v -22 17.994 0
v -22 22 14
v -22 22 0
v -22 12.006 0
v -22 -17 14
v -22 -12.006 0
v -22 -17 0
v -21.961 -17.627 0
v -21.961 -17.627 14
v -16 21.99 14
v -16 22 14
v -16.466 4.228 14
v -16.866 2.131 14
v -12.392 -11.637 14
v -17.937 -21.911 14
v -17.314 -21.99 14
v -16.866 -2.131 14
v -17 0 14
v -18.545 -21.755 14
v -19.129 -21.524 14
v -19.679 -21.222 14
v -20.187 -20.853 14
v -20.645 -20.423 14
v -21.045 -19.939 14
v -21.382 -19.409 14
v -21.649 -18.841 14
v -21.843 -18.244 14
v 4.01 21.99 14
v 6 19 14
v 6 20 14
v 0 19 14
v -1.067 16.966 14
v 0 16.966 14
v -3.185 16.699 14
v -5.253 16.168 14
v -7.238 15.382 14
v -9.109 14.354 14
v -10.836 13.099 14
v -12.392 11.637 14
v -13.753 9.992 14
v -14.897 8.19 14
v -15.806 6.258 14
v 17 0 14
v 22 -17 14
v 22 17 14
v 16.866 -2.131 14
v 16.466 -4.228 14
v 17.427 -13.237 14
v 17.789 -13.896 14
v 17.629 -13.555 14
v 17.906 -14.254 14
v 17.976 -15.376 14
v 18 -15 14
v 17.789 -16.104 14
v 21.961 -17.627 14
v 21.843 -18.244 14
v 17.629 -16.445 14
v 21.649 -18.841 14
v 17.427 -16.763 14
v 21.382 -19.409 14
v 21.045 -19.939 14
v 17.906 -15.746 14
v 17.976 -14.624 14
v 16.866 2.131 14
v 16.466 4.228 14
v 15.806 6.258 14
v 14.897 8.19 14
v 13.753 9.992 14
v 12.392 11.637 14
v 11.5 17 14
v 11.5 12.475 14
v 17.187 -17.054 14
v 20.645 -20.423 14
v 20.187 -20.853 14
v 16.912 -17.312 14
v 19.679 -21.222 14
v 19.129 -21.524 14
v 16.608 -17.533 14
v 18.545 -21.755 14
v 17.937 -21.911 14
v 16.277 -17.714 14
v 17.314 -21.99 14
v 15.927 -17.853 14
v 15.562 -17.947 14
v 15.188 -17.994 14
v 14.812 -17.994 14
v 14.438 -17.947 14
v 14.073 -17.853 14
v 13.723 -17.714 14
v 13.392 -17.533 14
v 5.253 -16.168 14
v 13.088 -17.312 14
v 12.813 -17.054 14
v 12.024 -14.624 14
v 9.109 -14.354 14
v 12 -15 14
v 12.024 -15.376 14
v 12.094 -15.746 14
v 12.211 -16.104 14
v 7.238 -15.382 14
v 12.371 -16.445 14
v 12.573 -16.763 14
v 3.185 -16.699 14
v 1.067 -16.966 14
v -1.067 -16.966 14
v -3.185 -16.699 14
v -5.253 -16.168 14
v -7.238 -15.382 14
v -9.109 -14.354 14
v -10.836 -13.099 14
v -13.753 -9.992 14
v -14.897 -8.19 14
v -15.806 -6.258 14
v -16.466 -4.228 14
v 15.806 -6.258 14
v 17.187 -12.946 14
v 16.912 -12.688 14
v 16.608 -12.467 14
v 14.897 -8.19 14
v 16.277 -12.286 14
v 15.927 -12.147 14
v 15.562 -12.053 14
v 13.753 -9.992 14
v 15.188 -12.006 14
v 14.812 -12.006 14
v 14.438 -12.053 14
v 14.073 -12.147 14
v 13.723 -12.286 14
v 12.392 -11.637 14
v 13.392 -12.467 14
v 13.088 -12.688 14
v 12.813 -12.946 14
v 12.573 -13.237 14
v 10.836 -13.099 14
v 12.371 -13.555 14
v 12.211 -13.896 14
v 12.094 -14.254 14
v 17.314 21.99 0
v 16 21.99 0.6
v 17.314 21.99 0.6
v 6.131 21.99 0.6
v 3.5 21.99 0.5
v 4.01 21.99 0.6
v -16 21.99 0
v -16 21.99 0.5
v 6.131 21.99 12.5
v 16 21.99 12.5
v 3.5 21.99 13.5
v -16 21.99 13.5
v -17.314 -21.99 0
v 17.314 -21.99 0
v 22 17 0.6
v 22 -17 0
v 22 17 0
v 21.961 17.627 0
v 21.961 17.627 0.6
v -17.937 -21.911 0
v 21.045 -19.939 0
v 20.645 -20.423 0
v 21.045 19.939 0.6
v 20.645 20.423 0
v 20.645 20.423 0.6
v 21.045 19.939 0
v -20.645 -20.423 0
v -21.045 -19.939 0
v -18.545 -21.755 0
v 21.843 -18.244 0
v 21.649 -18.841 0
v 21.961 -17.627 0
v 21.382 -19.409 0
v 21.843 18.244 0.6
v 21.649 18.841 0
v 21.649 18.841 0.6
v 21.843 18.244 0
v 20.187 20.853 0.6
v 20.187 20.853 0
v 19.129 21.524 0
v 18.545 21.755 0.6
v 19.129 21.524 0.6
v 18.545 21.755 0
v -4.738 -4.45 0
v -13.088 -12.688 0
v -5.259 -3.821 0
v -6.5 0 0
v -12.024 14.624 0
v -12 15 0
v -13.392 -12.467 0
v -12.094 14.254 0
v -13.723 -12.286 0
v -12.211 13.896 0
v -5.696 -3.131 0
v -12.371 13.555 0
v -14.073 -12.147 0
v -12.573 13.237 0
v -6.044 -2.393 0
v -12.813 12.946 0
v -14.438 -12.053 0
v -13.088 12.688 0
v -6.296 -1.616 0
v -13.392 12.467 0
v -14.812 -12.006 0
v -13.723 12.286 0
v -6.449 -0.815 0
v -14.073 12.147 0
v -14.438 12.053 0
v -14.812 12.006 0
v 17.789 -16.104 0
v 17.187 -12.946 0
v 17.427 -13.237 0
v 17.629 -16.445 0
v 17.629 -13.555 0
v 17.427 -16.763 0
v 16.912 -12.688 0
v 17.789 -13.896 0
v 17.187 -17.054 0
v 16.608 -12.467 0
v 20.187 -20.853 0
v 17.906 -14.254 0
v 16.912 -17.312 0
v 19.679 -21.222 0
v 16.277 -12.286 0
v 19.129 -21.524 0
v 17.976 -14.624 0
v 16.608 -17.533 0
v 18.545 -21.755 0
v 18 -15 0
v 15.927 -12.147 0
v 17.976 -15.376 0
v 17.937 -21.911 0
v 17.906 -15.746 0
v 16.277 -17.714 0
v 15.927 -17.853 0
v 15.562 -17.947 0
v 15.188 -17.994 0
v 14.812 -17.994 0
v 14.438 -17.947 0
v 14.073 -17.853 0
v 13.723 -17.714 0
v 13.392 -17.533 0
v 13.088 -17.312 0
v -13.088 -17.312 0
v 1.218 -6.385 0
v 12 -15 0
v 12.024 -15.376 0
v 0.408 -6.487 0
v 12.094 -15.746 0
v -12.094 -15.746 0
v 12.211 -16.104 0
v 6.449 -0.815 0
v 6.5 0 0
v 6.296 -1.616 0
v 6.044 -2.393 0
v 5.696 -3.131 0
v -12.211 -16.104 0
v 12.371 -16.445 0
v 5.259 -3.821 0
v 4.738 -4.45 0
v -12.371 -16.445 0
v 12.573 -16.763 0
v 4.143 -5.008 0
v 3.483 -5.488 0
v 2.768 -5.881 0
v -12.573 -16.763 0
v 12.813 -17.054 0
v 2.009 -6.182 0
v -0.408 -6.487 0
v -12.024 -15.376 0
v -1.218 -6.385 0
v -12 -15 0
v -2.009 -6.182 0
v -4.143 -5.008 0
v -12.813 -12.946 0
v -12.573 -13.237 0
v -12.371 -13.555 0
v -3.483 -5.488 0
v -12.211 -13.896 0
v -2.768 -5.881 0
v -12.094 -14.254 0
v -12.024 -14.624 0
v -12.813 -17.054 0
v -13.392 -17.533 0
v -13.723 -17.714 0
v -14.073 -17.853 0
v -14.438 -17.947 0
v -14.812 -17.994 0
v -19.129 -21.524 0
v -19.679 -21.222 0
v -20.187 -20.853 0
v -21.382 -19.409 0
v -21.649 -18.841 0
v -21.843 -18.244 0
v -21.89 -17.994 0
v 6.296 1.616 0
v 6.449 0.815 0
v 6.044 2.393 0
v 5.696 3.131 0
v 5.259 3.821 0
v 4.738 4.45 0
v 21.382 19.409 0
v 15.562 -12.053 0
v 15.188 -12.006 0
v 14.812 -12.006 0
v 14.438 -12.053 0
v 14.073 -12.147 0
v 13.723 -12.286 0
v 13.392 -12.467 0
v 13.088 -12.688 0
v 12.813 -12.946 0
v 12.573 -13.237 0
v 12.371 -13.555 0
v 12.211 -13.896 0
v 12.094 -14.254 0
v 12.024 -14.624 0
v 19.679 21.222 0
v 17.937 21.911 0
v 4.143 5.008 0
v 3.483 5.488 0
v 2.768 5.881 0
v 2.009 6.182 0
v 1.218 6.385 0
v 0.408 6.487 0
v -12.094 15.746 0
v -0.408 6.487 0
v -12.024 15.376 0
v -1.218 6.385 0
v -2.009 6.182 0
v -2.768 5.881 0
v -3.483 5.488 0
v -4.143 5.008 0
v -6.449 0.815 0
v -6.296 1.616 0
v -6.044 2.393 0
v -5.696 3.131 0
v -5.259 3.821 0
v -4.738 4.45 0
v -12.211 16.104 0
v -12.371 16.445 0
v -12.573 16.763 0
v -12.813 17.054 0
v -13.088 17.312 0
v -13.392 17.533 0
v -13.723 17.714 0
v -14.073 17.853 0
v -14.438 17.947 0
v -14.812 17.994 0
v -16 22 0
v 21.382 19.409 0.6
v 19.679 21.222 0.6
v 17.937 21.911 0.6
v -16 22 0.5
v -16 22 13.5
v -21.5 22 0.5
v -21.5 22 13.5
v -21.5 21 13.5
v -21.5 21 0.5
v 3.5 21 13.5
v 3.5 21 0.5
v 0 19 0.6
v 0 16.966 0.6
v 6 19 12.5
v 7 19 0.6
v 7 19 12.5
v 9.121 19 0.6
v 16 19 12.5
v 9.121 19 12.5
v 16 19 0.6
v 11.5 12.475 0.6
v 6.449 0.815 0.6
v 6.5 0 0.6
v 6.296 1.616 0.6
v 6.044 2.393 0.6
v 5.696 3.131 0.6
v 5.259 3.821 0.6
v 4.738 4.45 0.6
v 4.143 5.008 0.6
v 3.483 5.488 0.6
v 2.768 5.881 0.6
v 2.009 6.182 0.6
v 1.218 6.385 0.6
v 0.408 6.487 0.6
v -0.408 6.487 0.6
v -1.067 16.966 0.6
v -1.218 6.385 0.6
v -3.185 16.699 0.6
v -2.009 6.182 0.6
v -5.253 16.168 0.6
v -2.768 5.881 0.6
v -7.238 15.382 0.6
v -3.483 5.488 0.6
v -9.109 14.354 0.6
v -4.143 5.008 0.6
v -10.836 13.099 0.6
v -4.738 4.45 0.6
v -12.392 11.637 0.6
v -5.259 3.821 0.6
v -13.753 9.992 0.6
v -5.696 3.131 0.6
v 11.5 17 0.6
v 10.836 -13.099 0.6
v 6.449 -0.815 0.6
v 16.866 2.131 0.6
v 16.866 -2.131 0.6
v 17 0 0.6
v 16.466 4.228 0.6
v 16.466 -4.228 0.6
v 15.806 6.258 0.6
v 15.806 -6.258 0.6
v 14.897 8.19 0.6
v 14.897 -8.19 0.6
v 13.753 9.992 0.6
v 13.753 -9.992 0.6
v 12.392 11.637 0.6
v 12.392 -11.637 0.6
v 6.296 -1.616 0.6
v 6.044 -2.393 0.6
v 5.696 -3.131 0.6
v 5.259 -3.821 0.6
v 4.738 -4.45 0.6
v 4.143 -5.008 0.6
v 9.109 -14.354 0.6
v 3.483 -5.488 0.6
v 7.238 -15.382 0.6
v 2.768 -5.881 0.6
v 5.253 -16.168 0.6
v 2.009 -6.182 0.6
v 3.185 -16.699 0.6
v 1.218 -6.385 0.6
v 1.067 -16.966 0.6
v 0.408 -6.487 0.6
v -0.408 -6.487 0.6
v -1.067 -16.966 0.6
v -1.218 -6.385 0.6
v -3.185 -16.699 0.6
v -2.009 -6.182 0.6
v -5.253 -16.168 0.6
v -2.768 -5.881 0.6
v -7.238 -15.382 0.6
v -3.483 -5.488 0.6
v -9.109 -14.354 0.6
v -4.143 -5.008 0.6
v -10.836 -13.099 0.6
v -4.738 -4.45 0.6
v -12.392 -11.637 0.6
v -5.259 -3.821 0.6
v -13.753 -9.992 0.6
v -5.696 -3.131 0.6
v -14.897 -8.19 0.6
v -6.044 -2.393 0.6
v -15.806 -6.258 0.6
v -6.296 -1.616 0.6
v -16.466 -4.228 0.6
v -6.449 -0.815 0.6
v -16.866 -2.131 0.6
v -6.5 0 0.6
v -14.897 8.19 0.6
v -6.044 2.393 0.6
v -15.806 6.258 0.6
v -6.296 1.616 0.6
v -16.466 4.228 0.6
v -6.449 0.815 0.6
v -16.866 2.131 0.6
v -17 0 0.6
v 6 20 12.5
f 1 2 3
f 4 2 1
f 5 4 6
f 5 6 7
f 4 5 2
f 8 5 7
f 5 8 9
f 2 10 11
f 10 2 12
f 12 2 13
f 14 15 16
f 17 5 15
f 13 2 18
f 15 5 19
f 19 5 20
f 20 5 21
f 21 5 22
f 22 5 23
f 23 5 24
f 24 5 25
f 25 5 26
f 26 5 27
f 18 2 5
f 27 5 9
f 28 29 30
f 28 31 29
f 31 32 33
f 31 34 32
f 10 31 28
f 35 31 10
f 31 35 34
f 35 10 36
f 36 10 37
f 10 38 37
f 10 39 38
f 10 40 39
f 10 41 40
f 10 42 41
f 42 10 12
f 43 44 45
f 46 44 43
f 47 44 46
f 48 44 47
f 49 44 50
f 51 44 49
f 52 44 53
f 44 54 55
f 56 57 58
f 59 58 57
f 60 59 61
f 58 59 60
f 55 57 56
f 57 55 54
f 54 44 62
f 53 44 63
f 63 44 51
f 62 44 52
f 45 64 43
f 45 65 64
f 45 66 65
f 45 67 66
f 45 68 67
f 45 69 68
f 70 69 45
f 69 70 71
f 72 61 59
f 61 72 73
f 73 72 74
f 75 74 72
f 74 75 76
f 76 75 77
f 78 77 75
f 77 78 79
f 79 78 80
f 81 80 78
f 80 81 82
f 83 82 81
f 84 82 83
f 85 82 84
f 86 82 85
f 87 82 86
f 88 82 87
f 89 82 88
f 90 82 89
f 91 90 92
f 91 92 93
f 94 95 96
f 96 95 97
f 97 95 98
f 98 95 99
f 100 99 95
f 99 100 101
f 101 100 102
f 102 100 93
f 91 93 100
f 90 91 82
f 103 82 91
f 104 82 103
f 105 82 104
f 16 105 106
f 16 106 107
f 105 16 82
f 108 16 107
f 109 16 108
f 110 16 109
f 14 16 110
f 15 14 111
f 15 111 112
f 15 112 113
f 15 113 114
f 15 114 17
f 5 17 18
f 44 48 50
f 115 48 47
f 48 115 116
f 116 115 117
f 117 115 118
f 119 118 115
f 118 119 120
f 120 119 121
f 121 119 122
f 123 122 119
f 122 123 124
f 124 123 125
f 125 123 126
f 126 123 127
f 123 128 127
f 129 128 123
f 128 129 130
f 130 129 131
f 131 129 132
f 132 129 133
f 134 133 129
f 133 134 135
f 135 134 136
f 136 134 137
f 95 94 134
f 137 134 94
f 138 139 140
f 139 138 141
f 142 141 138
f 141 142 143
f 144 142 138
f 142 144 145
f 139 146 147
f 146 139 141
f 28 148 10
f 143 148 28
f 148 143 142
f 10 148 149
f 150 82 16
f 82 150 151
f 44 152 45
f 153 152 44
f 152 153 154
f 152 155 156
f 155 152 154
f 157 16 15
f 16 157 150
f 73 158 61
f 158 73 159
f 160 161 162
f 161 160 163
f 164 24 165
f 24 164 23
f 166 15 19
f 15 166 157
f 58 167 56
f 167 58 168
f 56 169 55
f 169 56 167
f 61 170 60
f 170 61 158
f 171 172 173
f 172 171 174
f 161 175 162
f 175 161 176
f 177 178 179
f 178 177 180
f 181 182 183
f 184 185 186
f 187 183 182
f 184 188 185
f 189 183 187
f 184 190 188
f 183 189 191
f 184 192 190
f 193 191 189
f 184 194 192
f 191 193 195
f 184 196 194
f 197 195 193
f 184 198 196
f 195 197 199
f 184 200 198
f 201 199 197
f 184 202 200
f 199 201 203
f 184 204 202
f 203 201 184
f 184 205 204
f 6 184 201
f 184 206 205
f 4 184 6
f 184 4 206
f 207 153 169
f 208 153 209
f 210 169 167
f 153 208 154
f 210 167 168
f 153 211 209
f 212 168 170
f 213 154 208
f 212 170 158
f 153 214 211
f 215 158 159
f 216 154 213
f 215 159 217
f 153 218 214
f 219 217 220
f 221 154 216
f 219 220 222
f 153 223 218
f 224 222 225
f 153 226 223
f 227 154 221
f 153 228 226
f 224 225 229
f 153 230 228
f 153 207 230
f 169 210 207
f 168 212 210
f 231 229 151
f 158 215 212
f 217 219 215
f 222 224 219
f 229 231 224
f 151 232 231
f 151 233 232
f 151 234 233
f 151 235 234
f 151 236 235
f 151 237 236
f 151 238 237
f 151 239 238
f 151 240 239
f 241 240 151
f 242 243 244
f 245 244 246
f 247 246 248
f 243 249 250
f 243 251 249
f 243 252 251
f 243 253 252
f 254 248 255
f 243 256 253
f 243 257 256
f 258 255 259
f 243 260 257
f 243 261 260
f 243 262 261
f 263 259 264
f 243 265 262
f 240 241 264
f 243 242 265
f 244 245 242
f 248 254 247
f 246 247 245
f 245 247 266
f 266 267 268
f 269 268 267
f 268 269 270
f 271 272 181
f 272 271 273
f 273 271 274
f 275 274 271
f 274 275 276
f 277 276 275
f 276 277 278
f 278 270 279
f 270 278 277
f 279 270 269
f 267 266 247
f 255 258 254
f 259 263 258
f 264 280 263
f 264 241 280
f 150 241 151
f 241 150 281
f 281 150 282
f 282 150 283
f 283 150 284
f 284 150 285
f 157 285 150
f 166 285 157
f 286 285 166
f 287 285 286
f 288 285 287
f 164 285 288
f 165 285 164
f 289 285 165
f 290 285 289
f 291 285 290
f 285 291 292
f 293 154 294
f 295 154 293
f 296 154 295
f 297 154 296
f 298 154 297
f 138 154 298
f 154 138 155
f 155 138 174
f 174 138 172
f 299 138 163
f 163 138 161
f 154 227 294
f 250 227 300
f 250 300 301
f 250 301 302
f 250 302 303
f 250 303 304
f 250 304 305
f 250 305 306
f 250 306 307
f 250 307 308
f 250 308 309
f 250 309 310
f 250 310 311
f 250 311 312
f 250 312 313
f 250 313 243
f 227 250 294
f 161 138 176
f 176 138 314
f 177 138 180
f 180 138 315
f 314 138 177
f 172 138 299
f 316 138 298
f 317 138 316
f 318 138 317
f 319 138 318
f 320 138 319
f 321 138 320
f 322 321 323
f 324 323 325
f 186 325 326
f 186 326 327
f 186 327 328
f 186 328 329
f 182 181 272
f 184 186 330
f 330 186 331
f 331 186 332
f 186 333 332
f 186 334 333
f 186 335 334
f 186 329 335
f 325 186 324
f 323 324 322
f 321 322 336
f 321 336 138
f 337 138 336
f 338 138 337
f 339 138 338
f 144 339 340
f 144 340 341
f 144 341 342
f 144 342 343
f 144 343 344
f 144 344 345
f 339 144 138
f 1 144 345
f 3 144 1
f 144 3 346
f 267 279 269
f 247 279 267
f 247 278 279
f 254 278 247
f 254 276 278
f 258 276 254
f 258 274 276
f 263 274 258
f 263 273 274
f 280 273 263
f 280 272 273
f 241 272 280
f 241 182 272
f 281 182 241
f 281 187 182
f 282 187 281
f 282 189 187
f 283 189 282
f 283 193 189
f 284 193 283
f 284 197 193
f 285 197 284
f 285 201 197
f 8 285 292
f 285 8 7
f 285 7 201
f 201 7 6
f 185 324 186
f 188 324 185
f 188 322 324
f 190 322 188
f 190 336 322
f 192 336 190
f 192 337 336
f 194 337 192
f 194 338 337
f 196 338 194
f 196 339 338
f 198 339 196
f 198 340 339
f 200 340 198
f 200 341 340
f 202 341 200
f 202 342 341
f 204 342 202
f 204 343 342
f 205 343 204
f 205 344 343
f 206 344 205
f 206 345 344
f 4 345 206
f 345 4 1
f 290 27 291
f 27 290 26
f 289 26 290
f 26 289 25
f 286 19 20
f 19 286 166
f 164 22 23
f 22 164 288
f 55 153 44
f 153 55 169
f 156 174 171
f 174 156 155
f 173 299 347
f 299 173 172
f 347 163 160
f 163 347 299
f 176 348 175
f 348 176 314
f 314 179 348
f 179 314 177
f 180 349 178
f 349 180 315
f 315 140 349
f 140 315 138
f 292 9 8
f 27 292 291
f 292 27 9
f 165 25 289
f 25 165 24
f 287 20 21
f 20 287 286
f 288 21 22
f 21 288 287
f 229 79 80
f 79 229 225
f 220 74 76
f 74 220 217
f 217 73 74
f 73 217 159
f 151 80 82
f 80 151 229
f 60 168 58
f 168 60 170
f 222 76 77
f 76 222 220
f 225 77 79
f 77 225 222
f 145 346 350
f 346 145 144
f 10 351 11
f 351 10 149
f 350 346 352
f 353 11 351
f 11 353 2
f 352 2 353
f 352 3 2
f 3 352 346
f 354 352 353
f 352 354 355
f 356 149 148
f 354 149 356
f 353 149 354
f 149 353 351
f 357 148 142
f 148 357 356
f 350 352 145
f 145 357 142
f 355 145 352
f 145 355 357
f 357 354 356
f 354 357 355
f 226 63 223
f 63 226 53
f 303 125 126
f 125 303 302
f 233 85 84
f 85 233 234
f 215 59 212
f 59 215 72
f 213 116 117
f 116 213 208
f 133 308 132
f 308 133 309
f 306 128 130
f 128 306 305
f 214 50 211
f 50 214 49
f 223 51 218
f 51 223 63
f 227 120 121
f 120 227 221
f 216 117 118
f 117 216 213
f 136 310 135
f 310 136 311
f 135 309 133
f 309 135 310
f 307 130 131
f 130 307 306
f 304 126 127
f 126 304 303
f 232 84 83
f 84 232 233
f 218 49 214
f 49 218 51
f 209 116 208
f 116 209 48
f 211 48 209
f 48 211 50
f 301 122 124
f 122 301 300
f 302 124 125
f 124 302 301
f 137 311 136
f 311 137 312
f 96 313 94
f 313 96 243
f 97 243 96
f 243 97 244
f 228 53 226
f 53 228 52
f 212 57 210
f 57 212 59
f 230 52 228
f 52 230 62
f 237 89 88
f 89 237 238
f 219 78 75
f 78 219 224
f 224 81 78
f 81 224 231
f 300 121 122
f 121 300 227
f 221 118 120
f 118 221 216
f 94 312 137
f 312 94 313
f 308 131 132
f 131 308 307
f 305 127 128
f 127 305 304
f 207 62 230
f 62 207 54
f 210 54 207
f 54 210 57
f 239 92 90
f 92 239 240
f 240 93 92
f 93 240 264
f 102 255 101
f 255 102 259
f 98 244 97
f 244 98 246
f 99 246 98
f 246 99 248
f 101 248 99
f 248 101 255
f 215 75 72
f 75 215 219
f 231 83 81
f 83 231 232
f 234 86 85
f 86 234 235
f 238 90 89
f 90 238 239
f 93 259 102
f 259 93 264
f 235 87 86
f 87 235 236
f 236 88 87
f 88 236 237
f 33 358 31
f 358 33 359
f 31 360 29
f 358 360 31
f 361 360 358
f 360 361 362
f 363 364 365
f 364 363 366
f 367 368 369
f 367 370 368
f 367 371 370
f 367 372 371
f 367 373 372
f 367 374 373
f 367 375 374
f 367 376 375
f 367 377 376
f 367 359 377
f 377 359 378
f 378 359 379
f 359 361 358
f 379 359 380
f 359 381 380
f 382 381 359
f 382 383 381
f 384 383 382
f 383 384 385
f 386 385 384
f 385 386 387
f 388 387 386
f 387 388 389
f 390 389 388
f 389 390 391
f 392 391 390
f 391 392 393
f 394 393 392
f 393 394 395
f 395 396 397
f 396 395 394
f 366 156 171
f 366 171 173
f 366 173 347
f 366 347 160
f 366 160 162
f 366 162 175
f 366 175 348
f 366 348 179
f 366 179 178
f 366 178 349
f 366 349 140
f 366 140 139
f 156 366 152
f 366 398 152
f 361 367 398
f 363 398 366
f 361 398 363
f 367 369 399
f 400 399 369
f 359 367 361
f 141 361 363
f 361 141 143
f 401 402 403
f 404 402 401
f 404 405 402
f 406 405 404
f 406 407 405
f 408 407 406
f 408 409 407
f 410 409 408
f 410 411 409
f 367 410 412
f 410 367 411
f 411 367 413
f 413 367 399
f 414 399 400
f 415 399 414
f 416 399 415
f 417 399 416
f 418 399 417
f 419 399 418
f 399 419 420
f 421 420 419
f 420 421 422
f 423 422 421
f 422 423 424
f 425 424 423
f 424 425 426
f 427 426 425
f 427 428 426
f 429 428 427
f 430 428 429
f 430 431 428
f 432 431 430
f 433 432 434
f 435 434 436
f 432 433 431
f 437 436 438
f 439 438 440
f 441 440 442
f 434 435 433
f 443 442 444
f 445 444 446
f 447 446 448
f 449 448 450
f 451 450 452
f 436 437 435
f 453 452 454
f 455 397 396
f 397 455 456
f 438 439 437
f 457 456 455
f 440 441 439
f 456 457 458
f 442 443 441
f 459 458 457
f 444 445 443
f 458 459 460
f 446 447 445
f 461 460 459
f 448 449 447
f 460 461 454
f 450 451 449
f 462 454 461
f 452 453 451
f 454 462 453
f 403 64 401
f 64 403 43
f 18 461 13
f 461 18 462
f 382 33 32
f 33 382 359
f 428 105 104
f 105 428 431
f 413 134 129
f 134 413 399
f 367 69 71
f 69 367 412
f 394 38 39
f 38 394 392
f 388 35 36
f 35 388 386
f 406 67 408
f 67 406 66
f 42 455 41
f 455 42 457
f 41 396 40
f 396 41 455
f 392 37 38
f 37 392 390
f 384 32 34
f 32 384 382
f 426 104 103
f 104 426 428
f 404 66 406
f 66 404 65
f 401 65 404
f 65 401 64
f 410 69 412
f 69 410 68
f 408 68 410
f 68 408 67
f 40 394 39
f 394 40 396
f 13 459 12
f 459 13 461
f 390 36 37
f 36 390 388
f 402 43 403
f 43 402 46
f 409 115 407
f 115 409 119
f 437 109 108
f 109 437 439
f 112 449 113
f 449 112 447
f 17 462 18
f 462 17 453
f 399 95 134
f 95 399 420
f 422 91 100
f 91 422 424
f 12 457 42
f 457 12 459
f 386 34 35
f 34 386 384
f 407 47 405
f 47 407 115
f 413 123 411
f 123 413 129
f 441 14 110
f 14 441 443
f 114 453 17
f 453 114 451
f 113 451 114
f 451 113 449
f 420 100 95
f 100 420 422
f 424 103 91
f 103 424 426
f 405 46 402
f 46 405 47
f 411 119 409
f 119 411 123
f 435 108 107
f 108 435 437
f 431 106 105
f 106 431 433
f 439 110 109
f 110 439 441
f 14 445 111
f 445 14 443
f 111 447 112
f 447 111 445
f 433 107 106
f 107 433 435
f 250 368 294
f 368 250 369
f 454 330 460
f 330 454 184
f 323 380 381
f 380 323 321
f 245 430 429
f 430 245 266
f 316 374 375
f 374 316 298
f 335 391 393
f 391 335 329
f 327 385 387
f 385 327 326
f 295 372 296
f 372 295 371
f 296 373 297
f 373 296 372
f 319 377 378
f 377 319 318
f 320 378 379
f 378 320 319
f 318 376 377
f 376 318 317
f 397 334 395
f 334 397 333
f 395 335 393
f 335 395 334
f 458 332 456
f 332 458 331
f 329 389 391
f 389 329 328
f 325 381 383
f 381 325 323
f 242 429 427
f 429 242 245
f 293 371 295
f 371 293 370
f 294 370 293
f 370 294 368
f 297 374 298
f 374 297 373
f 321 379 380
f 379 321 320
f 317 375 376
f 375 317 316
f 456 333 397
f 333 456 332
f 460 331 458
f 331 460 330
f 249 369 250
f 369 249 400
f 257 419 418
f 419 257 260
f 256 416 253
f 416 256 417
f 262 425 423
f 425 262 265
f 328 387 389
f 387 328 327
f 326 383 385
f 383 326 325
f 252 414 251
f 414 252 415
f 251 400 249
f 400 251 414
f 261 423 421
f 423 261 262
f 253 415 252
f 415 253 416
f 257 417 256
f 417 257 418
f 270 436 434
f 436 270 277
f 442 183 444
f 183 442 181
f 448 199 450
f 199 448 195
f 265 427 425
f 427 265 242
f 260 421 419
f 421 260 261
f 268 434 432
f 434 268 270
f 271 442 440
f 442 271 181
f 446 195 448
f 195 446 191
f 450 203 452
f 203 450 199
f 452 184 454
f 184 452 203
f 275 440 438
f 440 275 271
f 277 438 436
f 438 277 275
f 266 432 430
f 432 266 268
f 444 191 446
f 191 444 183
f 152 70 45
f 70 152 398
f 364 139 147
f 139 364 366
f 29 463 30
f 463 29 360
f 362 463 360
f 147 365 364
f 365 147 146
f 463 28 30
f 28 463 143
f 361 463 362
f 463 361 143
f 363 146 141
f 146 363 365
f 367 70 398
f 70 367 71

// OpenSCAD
$fn = 50;


difference() {
	union() {
		hull() {
			translate(v = [-17.0000000000, 17.0000000000, 0]) {
				cylinder(h = 14, r = 5);
			}
			translate(v = [17.0000000000, 17.0000000000, 0]) {
				cylinder(h = 14, r = 5);
			}
			translate(v = [-17.0000000000, -17.0000000000, 0]) {
				cylinder(h = 14, r = 5);
			}
			translate(v = [17.0000000000, -17.0000000000, 0]) {
				cylinder(h = 14, r = 5);
			}
		}
		translate(v = [-22.0000000000, 16.0000000000, 0]) {
			cube(size = [6, 6, 14]);
		}
	}
	union() {
		translate(v = [-22.5000000000, -15.0000000000, -250.0000000000]) {
			rotate(a = [0, 0, 0]) {
				difference() {
					union() {
						hull() {
							translate(v = [7.5000000000, 0, 0]) {
								cylinder(h = 250, r = 3.0000000000, r1 = 3.0000000000, r2 = 3.0000000000);
							}
							translate(v = [-7.5000000000, 0, 0]) {
								cylinder(h = 250, r = 3.0000000000, r1 = 3.0000000000, r2 = 3.0000000000);
							}
						}
					}
					union();
				}
			}
		}
		translate(v = [-22.5000000000, 15.0000000000, -250.0000000000]) {
			rotate(a = [0, 0, 0]) {
				difference() {
					union() {
						hull() {
							translate(v = [7.5000000000, 0, 0]) {
								cylinder(h = 250, r = 3.0000000000, r1 = 3.0000000000, r2 = 3.0000000000);
							}
							translate(v = [-7.5000000000, 0, 0]) {
								cylinder(h = 250, r = 3.0000000000, r1 = 3.0000000000, r2 = 3.0000000000);
							}
						}
					}
					union();
				}
			}
		}
		translate(v = [-21.5000000000, 21.0000000000, 0.5000000000]) {
			cube(size = [25, 1, 13.0000000000]);
		}
		translate(v = [15.0000000000, -15.0000000000, -50.0000000000]) {
			cylinder(h = 100, r = 3.0000000000);
		}
		translate(v = [0.0000000000, 11.0000000000, 0.6000000000]) {
			cube(size = [11, 8, 16.4000000000]);
		}
		translate(v = [0, 0, 0.6000000000]) {
			cylinder(h = 16.4000000000, r = 17.0000000000);
		}
		translate(v = [0, 0, -7.0000000000]) {
			cylinder(h = 14, r = 6.5000000000);
		}
		translate(v = [0.0000000000, 17.0000000000, 0.6000000000]) {
			cube(size = [22.0000000000, 2, 16.4000000000]);
		}
		translate(v = [16.0000000000, 17.0000000000, 0.6000000000]) {
			cube(size = [6, 5, 16.4000000000]);
		}
		translate(v = [6.0000000000, 17.0000000000, 12.5000000000]) {
			cube(size = [16, 5, 1.5000000000]);
		}
		translate(v = [3.2500000000, 22.7500000000, 0.6000000000]) {
			rotate(a = [0, 0, -45]) {
				cube(size = [7.5000000000, 1.5000000000, 16.4000000000]);
			}
		}
		translate(v = [2.5000000000, 12.0000000000, 0.6000000000]) {
			cube(size = [9.0000000000, 5, 13.4000000000]);
		}
	}
}
